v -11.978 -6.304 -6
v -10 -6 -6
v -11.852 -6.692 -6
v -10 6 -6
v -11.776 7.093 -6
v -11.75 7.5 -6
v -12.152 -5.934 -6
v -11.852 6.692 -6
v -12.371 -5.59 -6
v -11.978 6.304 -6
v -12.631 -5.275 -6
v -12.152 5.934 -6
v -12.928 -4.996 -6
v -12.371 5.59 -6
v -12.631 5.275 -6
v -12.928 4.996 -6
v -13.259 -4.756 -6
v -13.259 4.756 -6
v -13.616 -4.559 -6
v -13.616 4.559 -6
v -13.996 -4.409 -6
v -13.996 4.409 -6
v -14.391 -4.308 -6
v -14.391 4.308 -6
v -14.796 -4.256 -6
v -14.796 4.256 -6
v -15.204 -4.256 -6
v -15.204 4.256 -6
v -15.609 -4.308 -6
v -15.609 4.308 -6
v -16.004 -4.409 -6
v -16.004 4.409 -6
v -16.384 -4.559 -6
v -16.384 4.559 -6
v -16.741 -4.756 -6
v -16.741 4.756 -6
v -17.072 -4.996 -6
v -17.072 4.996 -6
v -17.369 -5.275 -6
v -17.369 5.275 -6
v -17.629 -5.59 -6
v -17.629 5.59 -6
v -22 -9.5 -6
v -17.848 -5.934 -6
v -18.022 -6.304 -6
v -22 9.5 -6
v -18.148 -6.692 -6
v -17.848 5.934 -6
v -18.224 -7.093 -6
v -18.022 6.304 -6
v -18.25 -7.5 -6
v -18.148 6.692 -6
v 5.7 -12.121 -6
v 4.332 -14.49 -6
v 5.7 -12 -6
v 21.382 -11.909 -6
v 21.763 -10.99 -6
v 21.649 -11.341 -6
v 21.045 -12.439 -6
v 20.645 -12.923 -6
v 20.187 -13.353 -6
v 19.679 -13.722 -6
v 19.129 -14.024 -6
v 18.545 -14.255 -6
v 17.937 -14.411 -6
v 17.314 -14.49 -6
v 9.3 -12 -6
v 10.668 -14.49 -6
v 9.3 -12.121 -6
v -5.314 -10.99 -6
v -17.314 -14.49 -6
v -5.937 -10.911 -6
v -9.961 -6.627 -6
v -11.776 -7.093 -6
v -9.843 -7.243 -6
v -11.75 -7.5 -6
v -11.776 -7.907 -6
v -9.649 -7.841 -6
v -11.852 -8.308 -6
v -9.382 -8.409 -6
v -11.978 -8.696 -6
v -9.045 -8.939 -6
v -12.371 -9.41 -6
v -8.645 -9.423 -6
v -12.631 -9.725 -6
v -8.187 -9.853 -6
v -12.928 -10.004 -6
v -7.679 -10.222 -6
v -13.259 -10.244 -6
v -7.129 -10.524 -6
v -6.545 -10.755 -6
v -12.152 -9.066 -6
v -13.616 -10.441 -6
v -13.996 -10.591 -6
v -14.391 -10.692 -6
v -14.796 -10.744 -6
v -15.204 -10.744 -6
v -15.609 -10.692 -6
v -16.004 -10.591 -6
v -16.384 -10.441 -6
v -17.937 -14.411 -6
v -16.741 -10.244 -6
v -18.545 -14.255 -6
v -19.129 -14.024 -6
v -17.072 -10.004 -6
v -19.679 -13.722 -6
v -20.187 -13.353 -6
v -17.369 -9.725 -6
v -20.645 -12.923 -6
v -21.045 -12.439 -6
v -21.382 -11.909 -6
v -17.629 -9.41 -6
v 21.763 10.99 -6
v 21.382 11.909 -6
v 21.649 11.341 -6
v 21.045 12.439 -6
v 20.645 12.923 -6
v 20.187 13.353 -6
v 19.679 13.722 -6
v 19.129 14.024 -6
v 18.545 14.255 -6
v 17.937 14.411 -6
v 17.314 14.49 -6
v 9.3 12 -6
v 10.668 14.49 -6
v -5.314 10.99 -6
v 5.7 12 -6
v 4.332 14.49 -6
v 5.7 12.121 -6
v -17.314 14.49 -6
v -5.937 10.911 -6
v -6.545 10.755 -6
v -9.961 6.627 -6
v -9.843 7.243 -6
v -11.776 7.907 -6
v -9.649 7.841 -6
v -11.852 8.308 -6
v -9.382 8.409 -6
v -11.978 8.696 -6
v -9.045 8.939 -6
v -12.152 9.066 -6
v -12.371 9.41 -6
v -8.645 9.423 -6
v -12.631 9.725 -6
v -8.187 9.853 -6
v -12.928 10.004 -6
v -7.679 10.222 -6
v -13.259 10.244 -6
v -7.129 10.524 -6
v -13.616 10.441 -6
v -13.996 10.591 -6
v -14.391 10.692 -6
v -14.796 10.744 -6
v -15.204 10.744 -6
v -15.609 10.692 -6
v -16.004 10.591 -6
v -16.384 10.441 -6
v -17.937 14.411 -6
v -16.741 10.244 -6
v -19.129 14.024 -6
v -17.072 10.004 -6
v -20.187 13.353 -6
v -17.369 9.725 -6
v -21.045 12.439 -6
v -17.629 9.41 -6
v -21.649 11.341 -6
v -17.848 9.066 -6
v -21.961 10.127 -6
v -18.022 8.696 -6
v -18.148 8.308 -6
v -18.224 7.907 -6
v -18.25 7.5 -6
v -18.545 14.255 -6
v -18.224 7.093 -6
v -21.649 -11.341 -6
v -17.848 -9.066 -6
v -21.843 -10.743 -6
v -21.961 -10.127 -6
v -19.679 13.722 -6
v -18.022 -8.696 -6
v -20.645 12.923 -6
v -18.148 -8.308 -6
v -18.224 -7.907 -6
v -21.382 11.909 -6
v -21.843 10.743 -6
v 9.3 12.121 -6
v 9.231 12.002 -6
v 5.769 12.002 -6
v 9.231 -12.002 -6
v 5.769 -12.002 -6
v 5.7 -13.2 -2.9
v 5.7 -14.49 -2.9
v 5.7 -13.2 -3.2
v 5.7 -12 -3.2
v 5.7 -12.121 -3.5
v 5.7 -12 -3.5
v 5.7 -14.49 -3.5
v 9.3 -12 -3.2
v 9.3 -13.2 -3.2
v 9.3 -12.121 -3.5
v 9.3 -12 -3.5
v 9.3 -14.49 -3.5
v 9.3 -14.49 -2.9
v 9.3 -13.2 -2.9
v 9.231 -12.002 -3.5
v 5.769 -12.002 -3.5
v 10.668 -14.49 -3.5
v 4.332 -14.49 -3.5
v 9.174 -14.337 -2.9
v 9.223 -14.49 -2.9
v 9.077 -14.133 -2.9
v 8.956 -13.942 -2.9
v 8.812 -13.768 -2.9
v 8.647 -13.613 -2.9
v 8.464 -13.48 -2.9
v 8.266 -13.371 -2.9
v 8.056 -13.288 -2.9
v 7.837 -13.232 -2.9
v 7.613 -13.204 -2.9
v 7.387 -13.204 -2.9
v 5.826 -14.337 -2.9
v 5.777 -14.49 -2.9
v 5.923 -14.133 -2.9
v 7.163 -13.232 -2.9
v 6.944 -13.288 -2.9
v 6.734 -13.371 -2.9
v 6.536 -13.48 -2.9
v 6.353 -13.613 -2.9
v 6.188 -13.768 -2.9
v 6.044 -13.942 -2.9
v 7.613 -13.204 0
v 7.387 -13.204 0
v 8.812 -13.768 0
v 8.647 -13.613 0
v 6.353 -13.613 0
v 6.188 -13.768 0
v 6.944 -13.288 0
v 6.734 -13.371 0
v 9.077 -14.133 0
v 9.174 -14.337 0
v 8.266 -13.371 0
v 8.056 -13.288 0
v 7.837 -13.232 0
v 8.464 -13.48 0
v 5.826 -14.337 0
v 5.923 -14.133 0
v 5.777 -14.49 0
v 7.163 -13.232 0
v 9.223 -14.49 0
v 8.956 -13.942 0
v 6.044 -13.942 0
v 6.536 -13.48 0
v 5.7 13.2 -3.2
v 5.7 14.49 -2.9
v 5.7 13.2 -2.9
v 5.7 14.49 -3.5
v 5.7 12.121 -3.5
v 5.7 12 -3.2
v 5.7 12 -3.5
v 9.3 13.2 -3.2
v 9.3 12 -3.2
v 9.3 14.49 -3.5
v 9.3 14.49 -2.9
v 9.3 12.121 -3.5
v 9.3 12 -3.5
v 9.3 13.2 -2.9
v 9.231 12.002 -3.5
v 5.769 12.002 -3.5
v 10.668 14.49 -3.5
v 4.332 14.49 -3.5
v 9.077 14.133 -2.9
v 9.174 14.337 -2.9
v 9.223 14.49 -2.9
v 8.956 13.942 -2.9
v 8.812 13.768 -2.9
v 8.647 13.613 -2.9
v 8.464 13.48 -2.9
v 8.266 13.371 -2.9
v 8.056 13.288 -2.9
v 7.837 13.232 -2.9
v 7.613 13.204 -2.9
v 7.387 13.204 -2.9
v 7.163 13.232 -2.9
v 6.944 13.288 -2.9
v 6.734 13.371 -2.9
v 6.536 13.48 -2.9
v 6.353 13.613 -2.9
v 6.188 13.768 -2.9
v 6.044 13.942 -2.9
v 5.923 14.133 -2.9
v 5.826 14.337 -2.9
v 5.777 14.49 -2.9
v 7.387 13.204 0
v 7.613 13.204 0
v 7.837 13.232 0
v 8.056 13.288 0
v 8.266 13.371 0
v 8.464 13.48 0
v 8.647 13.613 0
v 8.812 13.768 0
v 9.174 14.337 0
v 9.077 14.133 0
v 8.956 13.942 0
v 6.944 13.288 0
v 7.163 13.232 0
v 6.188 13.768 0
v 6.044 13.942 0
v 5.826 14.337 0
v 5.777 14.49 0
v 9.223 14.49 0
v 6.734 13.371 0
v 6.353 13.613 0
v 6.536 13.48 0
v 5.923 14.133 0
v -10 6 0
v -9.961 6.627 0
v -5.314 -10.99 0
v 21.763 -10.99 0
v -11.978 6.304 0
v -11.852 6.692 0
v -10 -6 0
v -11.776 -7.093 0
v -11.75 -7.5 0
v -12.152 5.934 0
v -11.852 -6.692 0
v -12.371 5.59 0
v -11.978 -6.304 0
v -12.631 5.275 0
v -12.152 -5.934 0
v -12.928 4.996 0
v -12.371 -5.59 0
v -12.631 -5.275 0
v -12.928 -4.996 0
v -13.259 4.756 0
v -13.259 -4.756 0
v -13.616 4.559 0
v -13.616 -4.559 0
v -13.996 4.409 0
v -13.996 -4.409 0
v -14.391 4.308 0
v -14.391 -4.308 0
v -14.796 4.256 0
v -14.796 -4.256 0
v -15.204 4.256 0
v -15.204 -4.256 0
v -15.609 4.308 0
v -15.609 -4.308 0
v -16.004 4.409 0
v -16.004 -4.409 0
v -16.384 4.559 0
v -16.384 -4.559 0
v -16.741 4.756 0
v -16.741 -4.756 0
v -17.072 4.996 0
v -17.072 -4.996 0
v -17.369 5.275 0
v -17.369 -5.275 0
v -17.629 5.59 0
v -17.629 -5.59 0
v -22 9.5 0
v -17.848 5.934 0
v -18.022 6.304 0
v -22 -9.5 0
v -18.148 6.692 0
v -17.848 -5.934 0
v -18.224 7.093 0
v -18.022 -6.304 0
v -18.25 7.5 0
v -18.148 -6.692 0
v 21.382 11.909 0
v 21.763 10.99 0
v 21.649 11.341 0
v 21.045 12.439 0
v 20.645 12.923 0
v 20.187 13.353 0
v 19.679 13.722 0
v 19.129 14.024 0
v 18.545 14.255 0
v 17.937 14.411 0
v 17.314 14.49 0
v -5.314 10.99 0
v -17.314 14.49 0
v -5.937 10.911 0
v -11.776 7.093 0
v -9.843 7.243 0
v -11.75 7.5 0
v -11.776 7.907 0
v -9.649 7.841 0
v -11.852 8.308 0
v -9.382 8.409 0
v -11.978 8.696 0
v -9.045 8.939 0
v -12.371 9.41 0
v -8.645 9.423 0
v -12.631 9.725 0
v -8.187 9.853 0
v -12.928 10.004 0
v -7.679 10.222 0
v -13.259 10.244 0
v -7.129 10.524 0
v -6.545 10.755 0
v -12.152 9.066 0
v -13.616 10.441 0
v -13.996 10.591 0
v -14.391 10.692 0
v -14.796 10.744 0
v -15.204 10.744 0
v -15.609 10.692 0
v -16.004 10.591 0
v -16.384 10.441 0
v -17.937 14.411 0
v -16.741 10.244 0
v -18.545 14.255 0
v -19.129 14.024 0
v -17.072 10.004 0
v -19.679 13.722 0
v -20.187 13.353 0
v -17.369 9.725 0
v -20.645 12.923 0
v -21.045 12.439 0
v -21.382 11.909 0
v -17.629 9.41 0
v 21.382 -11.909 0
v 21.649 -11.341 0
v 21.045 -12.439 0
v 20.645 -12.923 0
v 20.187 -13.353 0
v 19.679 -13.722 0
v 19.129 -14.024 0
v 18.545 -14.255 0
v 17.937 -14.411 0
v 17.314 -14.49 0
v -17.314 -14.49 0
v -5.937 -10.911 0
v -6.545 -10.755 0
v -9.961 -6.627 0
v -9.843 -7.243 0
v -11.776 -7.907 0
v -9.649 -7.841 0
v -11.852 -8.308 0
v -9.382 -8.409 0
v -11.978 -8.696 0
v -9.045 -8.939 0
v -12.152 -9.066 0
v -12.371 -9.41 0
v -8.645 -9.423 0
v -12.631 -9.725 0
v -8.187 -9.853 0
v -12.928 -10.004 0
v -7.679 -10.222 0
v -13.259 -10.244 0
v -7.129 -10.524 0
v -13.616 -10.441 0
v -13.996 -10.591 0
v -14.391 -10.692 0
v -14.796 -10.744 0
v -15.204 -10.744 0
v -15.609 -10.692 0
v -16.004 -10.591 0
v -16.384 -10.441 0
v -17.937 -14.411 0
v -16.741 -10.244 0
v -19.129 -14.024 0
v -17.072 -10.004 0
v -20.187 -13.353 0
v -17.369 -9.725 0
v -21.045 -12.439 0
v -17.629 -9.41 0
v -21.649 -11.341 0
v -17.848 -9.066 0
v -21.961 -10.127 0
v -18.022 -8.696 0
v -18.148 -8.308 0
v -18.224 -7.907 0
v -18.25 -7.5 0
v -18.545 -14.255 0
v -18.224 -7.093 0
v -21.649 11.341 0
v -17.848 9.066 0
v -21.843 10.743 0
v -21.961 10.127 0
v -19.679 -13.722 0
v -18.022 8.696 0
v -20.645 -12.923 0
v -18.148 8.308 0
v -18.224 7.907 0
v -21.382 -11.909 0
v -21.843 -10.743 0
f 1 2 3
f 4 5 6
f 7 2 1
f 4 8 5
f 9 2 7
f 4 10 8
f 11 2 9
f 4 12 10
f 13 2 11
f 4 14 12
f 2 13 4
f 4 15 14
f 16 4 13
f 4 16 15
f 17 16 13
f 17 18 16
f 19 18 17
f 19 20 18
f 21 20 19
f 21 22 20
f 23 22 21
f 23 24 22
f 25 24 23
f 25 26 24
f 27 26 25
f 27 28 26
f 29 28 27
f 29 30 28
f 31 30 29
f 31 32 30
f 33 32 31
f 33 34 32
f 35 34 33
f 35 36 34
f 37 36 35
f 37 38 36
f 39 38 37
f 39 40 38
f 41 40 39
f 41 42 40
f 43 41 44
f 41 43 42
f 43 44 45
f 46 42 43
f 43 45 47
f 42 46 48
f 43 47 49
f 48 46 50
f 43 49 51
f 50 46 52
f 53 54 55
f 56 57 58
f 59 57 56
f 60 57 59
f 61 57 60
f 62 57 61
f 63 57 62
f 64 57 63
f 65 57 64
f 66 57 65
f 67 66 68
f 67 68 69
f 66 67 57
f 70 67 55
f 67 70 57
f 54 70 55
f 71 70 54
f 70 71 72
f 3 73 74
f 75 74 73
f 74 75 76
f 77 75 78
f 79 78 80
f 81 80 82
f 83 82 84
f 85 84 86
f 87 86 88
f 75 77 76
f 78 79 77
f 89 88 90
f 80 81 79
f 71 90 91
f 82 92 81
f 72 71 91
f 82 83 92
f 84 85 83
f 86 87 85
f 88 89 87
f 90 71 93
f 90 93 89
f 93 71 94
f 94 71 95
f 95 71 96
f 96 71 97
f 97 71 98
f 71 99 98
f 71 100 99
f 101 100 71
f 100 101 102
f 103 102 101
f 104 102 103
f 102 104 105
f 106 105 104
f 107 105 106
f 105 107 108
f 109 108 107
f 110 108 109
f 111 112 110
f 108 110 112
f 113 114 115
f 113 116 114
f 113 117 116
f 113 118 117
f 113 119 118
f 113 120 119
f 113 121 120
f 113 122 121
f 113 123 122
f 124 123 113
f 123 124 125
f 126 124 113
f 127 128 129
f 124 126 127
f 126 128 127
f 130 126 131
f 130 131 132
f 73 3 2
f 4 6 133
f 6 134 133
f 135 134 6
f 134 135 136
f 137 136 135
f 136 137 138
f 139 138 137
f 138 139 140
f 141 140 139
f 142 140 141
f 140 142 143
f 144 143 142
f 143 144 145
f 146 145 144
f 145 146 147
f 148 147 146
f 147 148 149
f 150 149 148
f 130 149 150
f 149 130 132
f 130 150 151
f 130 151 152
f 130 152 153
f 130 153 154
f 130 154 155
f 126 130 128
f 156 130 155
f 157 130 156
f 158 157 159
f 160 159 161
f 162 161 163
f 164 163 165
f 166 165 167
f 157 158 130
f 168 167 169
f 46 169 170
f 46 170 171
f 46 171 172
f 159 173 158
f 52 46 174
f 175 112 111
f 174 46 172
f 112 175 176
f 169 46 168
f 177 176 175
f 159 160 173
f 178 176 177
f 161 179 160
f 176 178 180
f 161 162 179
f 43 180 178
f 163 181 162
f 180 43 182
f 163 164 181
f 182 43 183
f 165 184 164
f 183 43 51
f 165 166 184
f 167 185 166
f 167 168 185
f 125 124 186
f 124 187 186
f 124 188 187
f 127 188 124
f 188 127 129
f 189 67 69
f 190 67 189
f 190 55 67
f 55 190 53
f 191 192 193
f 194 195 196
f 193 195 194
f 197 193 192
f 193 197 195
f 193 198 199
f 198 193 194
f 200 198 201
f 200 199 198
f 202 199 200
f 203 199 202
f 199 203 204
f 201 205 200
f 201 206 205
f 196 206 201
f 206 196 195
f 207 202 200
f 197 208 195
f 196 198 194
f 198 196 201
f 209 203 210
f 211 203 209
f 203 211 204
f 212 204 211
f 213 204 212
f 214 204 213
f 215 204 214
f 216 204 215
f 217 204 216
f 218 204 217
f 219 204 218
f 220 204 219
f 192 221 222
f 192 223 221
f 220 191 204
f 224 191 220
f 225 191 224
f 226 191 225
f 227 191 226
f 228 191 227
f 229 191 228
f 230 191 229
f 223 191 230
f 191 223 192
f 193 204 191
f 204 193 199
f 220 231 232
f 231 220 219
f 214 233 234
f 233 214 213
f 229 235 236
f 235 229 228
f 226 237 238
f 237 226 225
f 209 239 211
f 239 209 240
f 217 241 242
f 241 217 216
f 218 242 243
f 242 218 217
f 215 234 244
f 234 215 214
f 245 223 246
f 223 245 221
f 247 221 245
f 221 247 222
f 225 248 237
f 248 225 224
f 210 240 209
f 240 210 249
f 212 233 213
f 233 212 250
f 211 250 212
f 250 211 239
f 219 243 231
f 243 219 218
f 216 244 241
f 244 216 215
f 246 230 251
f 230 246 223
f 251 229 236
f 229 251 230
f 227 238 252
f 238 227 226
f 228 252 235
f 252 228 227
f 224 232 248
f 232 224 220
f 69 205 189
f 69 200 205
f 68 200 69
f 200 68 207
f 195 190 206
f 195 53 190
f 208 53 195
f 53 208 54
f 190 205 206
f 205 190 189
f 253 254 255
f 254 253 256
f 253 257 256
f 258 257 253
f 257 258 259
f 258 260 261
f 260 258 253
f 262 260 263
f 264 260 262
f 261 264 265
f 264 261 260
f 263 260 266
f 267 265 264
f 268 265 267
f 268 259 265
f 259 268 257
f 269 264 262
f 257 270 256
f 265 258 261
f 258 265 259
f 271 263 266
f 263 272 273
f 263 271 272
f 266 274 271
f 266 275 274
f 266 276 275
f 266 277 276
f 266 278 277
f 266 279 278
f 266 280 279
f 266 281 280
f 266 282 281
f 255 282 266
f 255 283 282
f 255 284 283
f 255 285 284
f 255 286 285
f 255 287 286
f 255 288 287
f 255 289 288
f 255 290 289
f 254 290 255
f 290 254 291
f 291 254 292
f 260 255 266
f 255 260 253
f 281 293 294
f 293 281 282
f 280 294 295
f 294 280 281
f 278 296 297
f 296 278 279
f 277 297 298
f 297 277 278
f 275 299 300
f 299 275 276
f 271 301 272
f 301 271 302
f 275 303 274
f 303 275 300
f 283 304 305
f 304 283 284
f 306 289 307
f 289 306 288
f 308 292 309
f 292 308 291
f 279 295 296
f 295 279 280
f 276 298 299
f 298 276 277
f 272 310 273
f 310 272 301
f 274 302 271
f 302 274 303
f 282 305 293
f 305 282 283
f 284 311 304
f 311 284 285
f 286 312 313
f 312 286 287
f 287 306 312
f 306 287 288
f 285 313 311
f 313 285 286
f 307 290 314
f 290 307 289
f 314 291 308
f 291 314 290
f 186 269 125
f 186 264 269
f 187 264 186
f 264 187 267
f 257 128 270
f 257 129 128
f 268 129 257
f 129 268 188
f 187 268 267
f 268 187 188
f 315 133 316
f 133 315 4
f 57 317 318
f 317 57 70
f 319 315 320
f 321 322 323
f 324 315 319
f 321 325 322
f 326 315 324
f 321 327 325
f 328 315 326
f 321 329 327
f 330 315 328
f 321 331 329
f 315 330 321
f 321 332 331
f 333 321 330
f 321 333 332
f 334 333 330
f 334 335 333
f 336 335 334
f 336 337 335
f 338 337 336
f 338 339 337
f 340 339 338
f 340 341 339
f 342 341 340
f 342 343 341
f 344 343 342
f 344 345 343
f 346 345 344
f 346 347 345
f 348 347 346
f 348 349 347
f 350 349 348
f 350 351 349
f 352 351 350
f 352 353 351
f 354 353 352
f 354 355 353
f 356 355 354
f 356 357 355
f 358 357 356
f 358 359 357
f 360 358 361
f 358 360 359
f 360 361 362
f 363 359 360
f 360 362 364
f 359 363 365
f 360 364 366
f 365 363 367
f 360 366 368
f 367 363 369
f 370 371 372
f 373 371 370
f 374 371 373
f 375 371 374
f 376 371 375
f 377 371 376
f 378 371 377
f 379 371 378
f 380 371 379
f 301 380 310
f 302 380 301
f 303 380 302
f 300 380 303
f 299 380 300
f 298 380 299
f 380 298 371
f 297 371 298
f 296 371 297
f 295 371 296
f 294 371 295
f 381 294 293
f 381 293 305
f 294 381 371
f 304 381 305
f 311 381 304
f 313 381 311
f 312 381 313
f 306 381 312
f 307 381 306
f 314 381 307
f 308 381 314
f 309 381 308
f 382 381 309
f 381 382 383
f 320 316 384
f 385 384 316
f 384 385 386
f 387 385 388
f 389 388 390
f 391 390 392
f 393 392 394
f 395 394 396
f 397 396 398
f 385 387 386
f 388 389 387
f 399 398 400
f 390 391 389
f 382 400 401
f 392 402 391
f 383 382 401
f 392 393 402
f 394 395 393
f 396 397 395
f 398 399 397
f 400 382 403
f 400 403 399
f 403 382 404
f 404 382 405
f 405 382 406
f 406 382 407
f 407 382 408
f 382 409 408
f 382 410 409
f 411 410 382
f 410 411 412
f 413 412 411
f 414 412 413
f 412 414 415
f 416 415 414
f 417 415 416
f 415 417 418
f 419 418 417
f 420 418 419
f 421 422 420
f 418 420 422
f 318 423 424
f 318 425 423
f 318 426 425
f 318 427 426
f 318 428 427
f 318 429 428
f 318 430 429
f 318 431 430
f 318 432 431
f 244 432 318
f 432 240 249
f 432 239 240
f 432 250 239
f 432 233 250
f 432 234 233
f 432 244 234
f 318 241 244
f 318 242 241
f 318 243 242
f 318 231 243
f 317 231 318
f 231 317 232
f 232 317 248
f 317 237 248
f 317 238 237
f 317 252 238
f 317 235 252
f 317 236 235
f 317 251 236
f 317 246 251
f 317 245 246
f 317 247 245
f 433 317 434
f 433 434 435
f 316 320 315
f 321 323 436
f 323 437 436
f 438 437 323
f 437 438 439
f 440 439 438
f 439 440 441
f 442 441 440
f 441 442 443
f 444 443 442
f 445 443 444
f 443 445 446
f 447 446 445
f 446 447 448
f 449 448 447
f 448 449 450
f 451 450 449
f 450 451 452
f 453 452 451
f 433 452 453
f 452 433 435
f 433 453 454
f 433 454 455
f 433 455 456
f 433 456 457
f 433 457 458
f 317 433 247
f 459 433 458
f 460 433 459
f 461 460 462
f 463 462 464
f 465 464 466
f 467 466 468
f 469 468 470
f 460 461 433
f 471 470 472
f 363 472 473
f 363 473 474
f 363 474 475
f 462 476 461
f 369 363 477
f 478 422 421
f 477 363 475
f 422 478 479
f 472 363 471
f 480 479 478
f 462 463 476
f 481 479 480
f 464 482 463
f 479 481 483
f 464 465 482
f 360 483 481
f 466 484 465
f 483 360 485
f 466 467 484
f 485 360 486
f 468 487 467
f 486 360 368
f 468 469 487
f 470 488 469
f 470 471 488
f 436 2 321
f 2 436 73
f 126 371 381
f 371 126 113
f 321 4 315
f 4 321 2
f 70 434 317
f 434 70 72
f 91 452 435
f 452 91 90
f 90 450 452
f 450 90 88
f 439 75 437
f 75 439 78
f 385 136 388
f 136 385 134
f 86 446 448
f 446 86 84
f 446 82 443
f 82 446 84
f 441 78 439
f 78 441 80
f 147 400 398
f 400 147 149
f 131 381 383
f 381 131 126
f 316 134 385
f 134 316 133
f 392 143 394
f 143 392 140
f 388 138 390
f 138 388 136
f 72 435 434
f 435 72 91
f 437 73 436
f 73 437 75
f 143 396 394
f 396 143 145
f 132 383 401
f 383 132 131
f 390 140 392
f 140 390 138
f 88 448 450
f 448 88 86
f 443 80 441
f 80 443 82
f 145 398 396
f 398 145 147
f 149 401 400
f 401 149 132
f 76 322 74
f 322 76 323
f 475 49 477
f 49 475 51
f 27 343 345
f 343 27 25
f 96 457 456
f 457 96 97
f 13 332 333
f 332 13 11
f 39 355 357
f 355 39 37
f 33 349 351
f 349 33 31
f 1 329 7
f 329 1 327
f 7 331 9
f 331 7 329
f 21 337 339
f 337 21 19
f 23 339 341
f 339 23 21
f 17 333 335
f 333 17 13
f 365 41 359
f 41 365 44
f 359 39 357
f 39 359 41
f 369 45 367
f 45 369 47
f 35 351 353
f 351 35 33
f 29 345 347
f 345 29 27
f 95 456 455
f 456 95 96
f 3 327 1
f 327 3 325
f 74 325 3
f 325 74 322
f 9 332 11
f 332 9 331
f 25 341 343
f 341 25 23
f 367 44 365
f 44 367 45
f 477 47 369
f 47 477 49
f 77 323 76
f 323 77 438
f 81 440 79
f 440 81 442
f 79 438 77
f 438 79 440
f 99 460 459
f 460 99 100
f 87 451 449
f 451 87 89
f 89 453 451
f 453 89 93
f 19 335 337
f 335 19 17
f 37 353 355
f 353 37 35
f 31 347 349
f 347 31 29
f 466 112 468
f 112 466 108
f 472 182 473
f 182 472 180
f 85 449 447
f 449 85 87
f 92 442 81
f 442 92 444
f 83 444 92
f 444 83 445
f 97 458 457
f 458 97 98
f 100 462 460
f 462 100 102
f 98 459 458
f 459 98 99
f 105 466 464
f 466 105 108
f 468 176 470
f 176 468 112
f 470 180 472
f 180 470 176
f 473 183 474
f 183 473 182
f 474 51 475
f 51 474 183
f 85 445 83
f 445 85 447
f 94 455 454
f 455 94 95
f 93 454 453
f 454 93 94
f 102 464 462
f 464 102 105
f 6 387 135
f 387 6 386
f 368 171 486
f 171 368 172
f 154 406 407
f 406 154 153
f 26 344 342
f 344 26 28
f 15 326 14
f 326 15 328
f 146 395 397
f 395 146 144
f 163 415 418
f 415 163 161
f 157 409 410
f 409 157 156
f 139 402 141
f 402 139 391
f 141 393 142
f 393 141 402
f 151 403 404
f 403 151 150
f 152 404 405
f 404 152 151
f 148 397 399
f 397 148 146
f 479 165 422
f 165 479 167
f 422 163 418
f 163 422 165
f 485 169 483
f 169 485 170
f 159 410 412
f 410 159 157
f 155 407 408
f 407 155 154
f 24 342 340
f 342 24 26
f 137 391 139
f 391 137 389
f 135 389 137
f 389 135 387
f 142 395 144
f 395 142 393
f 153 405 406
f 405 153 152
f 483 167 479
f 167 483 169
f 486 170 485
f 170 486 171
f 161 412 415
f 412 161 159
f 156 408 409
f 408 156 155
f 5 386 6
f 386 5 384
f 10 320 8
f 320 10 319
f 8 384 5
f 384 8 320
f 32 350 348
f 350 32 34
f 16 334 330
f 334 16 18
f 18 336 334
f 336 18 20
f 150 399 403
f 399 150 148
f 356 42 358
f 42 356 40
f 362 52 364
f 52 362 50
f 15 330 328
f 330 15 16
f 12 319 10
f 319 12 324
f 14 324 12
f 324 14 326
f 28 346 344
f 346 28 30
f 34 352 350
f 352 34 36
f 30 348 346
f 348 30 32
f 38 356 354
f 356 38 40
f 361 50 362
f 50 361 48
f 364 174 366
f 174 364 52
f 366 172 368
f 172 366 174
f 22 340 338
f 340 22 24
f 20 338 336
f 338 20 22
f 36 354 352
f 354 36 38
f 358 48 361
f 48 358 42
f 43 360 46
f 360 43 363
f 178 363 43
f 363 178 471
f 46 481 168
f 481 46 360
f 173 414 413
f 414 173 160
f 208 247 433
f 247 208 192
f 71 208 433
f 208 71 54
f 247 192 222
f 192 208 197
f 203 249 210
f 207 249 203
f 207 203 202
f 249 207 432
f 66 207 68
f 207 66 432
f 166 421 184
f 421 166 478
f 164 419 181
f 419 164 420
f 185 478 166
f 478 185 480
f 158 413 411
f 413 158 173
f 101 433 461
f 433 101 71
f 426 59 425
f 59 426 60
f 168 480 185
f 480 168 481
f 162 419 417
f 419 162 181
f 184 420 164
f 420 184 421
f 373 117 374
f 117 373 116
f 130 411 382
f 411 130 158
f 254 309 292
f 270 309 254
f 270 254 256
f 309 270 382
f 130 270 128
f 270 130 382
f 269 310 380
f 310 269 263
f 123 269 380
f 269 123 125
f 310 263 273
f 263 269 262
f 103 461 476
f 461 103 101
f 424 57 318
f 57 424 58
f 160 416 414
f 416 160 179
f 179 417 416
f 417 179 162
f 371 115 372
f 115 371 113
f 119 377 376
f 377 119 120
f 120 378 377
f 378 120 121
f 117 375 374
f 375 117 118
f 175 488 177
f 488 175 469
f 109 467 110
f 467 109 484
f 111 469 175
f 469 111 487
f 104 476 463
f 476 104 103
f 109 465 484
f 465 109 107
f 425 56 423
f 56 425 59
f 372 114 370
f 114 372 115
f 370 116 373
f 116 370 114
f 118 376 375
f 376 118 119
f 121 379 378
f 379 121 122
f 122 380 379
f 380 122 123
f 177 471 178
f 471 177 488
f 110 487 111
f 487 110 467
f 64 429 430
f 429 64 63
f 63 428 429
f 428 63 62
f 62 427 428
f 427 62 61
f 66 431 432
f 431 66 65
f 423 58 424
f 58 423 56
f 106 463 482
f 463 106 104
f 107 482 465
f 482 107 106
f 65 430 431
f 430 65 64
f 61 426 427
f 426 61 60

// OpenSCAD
$fn = 50;


difference() {
	union() {
		*color(alpha = 1.0000000000, c = "gray") {
			translate(v = [0, 14, -6]) {
				linear_extrude(height = 2) {
					text(font = "Arial:style=Bold", halign = "center", size = 4.5000000000, text = "COMMENT description oobb_plate_shape_positive_type_6_depth_0_0_-6_pos_spacer_u_extra_6_thickness_3_width_2_height_0_0_-6_pos_plate", valign = "center");
				}
			}
		}
		translate(v = [0, 0, -6]) {
			hull() {
				translate(v = [-17.0000000000, 9.5000000000, 0]) {
					cylinder(h = 6, r = 5);
				}
				translate(v = [17.0000000000, 9.5000000000, 0]) {
					cylinder(h = 6, r = 5);
				}
				translate(v = [-17.0000000000, -9.5000000000, 0]) {
					cylinder(h = 6, r = 5);
				}
				translate(v = [17.0000000000, -9.5000000000, 0]) {
					cylinder(h = 6, r = 5);
				}
			}
		}
		*color(alpha = 1.0000000000, c = "gray") {
			translate(v = [0, 14, -6]) {
				linear_extrude(height = 2) {
					text(font = "Arial:style=Bold", halign = "center", size = 4.5000000000, text = "COMMENT description oobb_holes_shape_p_type_0_0_-6_pos_spacer_u_extra_6_thickness_3_width_2_height_0_0_-6_pos_plate_'left'_'right'_'top'_hole_sides_'left'_'right'_'top'_holes_true_both_holes", valign = "center");
				}
			}
		}
		*color(alpha = 1.0000000000, c = "gray") {
			translate(v = [0, 14, -3]) {
				rotate(a = [0, 0, 180]) {
					linear_extrude(height = 2) {
						text(font = "Arial:style=Bold", halign = "center", size = 4.5000000000, text = "COMMENT description oobb_wire_spacer_u_shape_0_0_-3_pos_spacer_u_extra_6_thickness_3_width_2_height_0_0_-6_pos_plate_0_0_180_rot", valign = "center");
					}
				}
			}
		}
	}
	union() {
		translate(v = [7.5000000000, -15, -6]) {
			rotate(a = [0, 0, 0]) {
				difference() {
					union() {
						#translate(v = [-1.8000000000, -3.0000000000, -0.3000000000]) {
							cube(size = [3.6000000000, 6.0000000000, 0.3000000000]);
						}
						#translate(v = [-1.8000000000, -1.8000000000, -0.6000000000]) {
							cube(size = [3.6000000000, 3.6000000000, 0.3000000000]);
						}
						#translate(v = [-1.8000000000, -3.0000000000, 2.5000000000]) {
							cube(size = [3.6000000000, 6.0000000000, 0.3000000000]);
						}
						#translate(v = [-1.8000000000, -1.8000000000, 2.8000000000]) {
							cube(size = [3.6000000000, 3.6000000000, 0.3000000000]);
						}
						#translate(v = [0, 0, -50.0000000000]) {
							cylinder(h = 100, r = 1.8000000000);
						}
						#linear_extrude(height = 2.5000000000) {
							polygon(points = [[3.4620000000, 0.0000000000], [1.7310000000, 2.9981799479], [-1.7310000000, 2.9981799479], [-3.4620000000, 0.0000000000], [-1.7310000000, -2.9981799479], [1.7310000000, -2.9981799479]]);
						}
						#translate(v = [-1.8000000000, -3.0000000000, -0.3000000000]) {
							cube(size = [3.6000000000, 6.0000000000, 0.3000000000]);
						}
						#translate(v = [-1.8000000000, -1.8000000000, -0.6000000000]) {
							cube(size = [3.6000000000, 3.6000000000, 0.3000000000]);
						}
						#translate(v = [-1.8000000000, -3.0000000000, 2.5000000000]) {
							cube(size = [3.6000000000, 6.0000000000, 0.3000000000]);
						}
						#translate(v = [-1.8000000000, -1.8000000000, 2.8000000000]) {
							cube(size = [3.6000000000, 3.6000000000, 0.3000000000]);
						}
						#translate(v = [0, 0, -50.0000000000]) {
							cylinder(h = 100, r = 1.8000000000);
						}
						#translate(v = [-1.8000000000, -3.0000000000, -0.3000000000]) {
							cube(size = [3.6000000000, 6.0000000000, 0.3000000000]);
						}
						#translate(v = [-1.8000000000, -1.8000000000, -0.6000000000]) {
							cube(size = [3.6000000000, 3.6000000000, 0.3000000000]);
						}
						#translate(v = [-1.8000000000, -3.0000000000, 2.5000000000]) {
							cube(size = [3.6000000000, 6.0000000000, 0.3000000000]);
						}
						#translate(v = [-1.8000000000, -1.8000000000, 2.8000000000]) {
							cube(size = [3.6000000000, 3.6000000000, 0.3000000000]);
						}
						#translate(v = [0, 0, -50.0000000000]) {
							cylinder(h = 100, r = 1.8000000000);
						}
					}
					union();
				}
			}
		}
		translate(v = [7.5000000000, 15, -6]) {
			rotate(a = [0, 0, 0]) {
				difference() {
					union() {
						#translate(v = [-1.8000000000, -3.0000000000, -0.3000000000]) {
							cube(size = [3.6000000000, 6.0000000000, 0.3000000000]);
						}
						#translate(v = [-1.8000000000, -1.8000000000, -0.6000000000]) {
							cube(size = [3.6000000000, 3.6000000000, 0.3000000000]);
						}
						#translate(v = [-1.8000000000, -3.0000000000, 2.5000000000]) {
							cube(size = [3.6000000000, 6.0000000000, 0.3000000000]);
						}
						#translate(v = [-1.8000000000, -1.8000000000, 2.8000000000]) {
							cube(size = [3.6000000000, 3.6000000000, 0.3000000000]);
						}
						#translate(v = [0, 0, -50.0000000000]) {
							cylinder(h = 100, r = 1.8000000000);
						}
						#linear_extrude(height = 2.5000000000) {
							polygon(points = [[3.4620000000, 0.0000000000], [1.7310000000, 2.9981799479], [-1.7310000000, 2.9981799479], [-3.4620000000, 0.0000000000], [-1.7310000000, -2.9981799479], [1.7310000000, -2.9981799479]]);
						}
						#translate(v = [-1.8000000000, -3.0000000000, -0.3000000000]) {
							cube(size = [3.6000000000, 6.0000000000, 0.3000000000]);
						}
						#translate(v = [-1.8000000000, -1.8000000000, -0.6000000000]) {
							cube(size = [3.6000000000, 3.6000000000, 0.3000000000]);
						}
						#translate(v = [-1.8000000000, -3.0000000000, 2.5000000000]) {
							cube(size = [3.6000000000, 6.0000000000, 0.3000000000]);
						}
						#translate(v = [-1.8000000000, -1.8000000000, 2.8000000000]) {
							cube(size = [3.6000000000, 3.6000000000, 0.3000000000]);
						}
						#translate(v = [0, 0, -50.0000000000]) {
							cylinder(h = 100, r = 1.8000000000);
						}
						#translate(v = [-1.8000000000, -3.0000000000, -0.3000000000]) {
							cube(size = [3.6000000000, 6.0000000000, 0.3000000000]);
						}
						#translate(v = [-1.8000000000, -1.8000000000, -0.6000000000]) {
							cube(size = [3.6000000000, 3.6000000000, 0.3000000000]);
						}
						#translate(v = [-1.8000000000, -3.0000000000, 2.5000000000]) {
							cube(size = [3.6000000000, 6.0000000000, 0.3000000000]);
						}
						#translate(v = [-1.8000000000, -1.8000000000, 2.8000000000]) {
							cube(size = [3.6000000000, 3.6000000000, 0.3000000000]);
						}
						#translate(v = [0, 0, -50.0000000000]) {
							cylinder(h = 100, r = 1.8000000000);
						}
					}
					union();
				}
			}
		}
		translate(v = [0, 0, -3]) {
			rotate(a = [0, 0, 180]) {
				difference() {
					union() {
						translate(v = [-10, 0, -3]) {
							hull() {
								translate(v = [-15.0000000000, 6.0000000000, 0]) {
									cylinder(h = 6, r = 5);
								}
								translate(v = [15.0000000000, 6.0000000000, 0]) {
									cylinder(h = 6, r = 5);
								}
								translate(v = [-15.0000000000, -6.0000000000, 0]) {
									cylinder(h = 6, r = 5);
								}
								translate(v = [15.0000000000, -6.0000000000, 0]) {
									cylinder(h = 6, r = 5);
								}
							}
						}
					}
					union();
				}
			}
		}
		translate(v = [-15.0000000000, -7.5000000000, -50.0000000000]) {
			cylinder(h = 100, r = 3.2500000000);
		}
		translate(v = [-15.0000000000, 7.5000000000, -50.0000000000]) {
			cylinder(h = 100, r = 3.2500000000);
		}
		translate(v = [-15.0000000000, 7.5000000000, -50.0000000000]) {
			cylinder(h = 100, r = 3.2500000000);
		}
		translate(v = [0.0000000000, 7.5000000000, -50.0000000000]) {
			cylinder(h = 100, r = 3.2500000000);
		}
		translate(v = [15.0000000000, 7.5000000000, -50.0000000000]) {
			cylinder(h = 100, r = 3.2500000000);
		}
		translate(v = [-15.0000000000, -7.5000000000, -50.0000000000]) {
			cylinder(h = 100, r = 3.2500000000);
		}
		translate(v = [0.0000000000, -7.5000000000, -50.0000000000]) {
			cylinder(h = 100, r = 3.2500000000);
		}
		translate(v = [15.0000000000, -7.5000000000, -50.0000000000]) {
			cylinder(h = 100, r = 3.2500000000);
		}
		*color(alpha = 1.0000000000, c = "gray") {
			translate(v = [7.5000000000, -1, -6]) {
				linear_extrude(height = 2) {
					text(font = "Arial:style=Bold", halign = "center", size = 4.5000000000, text = "COMMENT description oobb_nut_shape_negative_type_m3_radius_name_7.5_-15_-6_pos_6_thickness_3_width_2_height_0_0_-6_pos_plate_bottom_zz_true_overhang_0_0_0_rot_false_nut_true_hole", valign = "center");
				}
			}
		}
		*color(alpha = 1.0000000000, c = "gray") {
			translate(v = [7.5000000000, 29, -6]) {
				linear_extrude(height = 2) {
					text(font = "Arial:style=Bold", halign = "center", size = 4.5000000000, text = "COMMENT description oobb_nut_shape_negative_type_m3_radius_name_7.5_15_-6_pos_6_thickness_3_width_2_height_0_0_-6_pos_plate_bottom_zz_true_overhang_0_0_0_rot_false_nut_true_hole", valign = "center");
				}
			}
		}
	}
}
